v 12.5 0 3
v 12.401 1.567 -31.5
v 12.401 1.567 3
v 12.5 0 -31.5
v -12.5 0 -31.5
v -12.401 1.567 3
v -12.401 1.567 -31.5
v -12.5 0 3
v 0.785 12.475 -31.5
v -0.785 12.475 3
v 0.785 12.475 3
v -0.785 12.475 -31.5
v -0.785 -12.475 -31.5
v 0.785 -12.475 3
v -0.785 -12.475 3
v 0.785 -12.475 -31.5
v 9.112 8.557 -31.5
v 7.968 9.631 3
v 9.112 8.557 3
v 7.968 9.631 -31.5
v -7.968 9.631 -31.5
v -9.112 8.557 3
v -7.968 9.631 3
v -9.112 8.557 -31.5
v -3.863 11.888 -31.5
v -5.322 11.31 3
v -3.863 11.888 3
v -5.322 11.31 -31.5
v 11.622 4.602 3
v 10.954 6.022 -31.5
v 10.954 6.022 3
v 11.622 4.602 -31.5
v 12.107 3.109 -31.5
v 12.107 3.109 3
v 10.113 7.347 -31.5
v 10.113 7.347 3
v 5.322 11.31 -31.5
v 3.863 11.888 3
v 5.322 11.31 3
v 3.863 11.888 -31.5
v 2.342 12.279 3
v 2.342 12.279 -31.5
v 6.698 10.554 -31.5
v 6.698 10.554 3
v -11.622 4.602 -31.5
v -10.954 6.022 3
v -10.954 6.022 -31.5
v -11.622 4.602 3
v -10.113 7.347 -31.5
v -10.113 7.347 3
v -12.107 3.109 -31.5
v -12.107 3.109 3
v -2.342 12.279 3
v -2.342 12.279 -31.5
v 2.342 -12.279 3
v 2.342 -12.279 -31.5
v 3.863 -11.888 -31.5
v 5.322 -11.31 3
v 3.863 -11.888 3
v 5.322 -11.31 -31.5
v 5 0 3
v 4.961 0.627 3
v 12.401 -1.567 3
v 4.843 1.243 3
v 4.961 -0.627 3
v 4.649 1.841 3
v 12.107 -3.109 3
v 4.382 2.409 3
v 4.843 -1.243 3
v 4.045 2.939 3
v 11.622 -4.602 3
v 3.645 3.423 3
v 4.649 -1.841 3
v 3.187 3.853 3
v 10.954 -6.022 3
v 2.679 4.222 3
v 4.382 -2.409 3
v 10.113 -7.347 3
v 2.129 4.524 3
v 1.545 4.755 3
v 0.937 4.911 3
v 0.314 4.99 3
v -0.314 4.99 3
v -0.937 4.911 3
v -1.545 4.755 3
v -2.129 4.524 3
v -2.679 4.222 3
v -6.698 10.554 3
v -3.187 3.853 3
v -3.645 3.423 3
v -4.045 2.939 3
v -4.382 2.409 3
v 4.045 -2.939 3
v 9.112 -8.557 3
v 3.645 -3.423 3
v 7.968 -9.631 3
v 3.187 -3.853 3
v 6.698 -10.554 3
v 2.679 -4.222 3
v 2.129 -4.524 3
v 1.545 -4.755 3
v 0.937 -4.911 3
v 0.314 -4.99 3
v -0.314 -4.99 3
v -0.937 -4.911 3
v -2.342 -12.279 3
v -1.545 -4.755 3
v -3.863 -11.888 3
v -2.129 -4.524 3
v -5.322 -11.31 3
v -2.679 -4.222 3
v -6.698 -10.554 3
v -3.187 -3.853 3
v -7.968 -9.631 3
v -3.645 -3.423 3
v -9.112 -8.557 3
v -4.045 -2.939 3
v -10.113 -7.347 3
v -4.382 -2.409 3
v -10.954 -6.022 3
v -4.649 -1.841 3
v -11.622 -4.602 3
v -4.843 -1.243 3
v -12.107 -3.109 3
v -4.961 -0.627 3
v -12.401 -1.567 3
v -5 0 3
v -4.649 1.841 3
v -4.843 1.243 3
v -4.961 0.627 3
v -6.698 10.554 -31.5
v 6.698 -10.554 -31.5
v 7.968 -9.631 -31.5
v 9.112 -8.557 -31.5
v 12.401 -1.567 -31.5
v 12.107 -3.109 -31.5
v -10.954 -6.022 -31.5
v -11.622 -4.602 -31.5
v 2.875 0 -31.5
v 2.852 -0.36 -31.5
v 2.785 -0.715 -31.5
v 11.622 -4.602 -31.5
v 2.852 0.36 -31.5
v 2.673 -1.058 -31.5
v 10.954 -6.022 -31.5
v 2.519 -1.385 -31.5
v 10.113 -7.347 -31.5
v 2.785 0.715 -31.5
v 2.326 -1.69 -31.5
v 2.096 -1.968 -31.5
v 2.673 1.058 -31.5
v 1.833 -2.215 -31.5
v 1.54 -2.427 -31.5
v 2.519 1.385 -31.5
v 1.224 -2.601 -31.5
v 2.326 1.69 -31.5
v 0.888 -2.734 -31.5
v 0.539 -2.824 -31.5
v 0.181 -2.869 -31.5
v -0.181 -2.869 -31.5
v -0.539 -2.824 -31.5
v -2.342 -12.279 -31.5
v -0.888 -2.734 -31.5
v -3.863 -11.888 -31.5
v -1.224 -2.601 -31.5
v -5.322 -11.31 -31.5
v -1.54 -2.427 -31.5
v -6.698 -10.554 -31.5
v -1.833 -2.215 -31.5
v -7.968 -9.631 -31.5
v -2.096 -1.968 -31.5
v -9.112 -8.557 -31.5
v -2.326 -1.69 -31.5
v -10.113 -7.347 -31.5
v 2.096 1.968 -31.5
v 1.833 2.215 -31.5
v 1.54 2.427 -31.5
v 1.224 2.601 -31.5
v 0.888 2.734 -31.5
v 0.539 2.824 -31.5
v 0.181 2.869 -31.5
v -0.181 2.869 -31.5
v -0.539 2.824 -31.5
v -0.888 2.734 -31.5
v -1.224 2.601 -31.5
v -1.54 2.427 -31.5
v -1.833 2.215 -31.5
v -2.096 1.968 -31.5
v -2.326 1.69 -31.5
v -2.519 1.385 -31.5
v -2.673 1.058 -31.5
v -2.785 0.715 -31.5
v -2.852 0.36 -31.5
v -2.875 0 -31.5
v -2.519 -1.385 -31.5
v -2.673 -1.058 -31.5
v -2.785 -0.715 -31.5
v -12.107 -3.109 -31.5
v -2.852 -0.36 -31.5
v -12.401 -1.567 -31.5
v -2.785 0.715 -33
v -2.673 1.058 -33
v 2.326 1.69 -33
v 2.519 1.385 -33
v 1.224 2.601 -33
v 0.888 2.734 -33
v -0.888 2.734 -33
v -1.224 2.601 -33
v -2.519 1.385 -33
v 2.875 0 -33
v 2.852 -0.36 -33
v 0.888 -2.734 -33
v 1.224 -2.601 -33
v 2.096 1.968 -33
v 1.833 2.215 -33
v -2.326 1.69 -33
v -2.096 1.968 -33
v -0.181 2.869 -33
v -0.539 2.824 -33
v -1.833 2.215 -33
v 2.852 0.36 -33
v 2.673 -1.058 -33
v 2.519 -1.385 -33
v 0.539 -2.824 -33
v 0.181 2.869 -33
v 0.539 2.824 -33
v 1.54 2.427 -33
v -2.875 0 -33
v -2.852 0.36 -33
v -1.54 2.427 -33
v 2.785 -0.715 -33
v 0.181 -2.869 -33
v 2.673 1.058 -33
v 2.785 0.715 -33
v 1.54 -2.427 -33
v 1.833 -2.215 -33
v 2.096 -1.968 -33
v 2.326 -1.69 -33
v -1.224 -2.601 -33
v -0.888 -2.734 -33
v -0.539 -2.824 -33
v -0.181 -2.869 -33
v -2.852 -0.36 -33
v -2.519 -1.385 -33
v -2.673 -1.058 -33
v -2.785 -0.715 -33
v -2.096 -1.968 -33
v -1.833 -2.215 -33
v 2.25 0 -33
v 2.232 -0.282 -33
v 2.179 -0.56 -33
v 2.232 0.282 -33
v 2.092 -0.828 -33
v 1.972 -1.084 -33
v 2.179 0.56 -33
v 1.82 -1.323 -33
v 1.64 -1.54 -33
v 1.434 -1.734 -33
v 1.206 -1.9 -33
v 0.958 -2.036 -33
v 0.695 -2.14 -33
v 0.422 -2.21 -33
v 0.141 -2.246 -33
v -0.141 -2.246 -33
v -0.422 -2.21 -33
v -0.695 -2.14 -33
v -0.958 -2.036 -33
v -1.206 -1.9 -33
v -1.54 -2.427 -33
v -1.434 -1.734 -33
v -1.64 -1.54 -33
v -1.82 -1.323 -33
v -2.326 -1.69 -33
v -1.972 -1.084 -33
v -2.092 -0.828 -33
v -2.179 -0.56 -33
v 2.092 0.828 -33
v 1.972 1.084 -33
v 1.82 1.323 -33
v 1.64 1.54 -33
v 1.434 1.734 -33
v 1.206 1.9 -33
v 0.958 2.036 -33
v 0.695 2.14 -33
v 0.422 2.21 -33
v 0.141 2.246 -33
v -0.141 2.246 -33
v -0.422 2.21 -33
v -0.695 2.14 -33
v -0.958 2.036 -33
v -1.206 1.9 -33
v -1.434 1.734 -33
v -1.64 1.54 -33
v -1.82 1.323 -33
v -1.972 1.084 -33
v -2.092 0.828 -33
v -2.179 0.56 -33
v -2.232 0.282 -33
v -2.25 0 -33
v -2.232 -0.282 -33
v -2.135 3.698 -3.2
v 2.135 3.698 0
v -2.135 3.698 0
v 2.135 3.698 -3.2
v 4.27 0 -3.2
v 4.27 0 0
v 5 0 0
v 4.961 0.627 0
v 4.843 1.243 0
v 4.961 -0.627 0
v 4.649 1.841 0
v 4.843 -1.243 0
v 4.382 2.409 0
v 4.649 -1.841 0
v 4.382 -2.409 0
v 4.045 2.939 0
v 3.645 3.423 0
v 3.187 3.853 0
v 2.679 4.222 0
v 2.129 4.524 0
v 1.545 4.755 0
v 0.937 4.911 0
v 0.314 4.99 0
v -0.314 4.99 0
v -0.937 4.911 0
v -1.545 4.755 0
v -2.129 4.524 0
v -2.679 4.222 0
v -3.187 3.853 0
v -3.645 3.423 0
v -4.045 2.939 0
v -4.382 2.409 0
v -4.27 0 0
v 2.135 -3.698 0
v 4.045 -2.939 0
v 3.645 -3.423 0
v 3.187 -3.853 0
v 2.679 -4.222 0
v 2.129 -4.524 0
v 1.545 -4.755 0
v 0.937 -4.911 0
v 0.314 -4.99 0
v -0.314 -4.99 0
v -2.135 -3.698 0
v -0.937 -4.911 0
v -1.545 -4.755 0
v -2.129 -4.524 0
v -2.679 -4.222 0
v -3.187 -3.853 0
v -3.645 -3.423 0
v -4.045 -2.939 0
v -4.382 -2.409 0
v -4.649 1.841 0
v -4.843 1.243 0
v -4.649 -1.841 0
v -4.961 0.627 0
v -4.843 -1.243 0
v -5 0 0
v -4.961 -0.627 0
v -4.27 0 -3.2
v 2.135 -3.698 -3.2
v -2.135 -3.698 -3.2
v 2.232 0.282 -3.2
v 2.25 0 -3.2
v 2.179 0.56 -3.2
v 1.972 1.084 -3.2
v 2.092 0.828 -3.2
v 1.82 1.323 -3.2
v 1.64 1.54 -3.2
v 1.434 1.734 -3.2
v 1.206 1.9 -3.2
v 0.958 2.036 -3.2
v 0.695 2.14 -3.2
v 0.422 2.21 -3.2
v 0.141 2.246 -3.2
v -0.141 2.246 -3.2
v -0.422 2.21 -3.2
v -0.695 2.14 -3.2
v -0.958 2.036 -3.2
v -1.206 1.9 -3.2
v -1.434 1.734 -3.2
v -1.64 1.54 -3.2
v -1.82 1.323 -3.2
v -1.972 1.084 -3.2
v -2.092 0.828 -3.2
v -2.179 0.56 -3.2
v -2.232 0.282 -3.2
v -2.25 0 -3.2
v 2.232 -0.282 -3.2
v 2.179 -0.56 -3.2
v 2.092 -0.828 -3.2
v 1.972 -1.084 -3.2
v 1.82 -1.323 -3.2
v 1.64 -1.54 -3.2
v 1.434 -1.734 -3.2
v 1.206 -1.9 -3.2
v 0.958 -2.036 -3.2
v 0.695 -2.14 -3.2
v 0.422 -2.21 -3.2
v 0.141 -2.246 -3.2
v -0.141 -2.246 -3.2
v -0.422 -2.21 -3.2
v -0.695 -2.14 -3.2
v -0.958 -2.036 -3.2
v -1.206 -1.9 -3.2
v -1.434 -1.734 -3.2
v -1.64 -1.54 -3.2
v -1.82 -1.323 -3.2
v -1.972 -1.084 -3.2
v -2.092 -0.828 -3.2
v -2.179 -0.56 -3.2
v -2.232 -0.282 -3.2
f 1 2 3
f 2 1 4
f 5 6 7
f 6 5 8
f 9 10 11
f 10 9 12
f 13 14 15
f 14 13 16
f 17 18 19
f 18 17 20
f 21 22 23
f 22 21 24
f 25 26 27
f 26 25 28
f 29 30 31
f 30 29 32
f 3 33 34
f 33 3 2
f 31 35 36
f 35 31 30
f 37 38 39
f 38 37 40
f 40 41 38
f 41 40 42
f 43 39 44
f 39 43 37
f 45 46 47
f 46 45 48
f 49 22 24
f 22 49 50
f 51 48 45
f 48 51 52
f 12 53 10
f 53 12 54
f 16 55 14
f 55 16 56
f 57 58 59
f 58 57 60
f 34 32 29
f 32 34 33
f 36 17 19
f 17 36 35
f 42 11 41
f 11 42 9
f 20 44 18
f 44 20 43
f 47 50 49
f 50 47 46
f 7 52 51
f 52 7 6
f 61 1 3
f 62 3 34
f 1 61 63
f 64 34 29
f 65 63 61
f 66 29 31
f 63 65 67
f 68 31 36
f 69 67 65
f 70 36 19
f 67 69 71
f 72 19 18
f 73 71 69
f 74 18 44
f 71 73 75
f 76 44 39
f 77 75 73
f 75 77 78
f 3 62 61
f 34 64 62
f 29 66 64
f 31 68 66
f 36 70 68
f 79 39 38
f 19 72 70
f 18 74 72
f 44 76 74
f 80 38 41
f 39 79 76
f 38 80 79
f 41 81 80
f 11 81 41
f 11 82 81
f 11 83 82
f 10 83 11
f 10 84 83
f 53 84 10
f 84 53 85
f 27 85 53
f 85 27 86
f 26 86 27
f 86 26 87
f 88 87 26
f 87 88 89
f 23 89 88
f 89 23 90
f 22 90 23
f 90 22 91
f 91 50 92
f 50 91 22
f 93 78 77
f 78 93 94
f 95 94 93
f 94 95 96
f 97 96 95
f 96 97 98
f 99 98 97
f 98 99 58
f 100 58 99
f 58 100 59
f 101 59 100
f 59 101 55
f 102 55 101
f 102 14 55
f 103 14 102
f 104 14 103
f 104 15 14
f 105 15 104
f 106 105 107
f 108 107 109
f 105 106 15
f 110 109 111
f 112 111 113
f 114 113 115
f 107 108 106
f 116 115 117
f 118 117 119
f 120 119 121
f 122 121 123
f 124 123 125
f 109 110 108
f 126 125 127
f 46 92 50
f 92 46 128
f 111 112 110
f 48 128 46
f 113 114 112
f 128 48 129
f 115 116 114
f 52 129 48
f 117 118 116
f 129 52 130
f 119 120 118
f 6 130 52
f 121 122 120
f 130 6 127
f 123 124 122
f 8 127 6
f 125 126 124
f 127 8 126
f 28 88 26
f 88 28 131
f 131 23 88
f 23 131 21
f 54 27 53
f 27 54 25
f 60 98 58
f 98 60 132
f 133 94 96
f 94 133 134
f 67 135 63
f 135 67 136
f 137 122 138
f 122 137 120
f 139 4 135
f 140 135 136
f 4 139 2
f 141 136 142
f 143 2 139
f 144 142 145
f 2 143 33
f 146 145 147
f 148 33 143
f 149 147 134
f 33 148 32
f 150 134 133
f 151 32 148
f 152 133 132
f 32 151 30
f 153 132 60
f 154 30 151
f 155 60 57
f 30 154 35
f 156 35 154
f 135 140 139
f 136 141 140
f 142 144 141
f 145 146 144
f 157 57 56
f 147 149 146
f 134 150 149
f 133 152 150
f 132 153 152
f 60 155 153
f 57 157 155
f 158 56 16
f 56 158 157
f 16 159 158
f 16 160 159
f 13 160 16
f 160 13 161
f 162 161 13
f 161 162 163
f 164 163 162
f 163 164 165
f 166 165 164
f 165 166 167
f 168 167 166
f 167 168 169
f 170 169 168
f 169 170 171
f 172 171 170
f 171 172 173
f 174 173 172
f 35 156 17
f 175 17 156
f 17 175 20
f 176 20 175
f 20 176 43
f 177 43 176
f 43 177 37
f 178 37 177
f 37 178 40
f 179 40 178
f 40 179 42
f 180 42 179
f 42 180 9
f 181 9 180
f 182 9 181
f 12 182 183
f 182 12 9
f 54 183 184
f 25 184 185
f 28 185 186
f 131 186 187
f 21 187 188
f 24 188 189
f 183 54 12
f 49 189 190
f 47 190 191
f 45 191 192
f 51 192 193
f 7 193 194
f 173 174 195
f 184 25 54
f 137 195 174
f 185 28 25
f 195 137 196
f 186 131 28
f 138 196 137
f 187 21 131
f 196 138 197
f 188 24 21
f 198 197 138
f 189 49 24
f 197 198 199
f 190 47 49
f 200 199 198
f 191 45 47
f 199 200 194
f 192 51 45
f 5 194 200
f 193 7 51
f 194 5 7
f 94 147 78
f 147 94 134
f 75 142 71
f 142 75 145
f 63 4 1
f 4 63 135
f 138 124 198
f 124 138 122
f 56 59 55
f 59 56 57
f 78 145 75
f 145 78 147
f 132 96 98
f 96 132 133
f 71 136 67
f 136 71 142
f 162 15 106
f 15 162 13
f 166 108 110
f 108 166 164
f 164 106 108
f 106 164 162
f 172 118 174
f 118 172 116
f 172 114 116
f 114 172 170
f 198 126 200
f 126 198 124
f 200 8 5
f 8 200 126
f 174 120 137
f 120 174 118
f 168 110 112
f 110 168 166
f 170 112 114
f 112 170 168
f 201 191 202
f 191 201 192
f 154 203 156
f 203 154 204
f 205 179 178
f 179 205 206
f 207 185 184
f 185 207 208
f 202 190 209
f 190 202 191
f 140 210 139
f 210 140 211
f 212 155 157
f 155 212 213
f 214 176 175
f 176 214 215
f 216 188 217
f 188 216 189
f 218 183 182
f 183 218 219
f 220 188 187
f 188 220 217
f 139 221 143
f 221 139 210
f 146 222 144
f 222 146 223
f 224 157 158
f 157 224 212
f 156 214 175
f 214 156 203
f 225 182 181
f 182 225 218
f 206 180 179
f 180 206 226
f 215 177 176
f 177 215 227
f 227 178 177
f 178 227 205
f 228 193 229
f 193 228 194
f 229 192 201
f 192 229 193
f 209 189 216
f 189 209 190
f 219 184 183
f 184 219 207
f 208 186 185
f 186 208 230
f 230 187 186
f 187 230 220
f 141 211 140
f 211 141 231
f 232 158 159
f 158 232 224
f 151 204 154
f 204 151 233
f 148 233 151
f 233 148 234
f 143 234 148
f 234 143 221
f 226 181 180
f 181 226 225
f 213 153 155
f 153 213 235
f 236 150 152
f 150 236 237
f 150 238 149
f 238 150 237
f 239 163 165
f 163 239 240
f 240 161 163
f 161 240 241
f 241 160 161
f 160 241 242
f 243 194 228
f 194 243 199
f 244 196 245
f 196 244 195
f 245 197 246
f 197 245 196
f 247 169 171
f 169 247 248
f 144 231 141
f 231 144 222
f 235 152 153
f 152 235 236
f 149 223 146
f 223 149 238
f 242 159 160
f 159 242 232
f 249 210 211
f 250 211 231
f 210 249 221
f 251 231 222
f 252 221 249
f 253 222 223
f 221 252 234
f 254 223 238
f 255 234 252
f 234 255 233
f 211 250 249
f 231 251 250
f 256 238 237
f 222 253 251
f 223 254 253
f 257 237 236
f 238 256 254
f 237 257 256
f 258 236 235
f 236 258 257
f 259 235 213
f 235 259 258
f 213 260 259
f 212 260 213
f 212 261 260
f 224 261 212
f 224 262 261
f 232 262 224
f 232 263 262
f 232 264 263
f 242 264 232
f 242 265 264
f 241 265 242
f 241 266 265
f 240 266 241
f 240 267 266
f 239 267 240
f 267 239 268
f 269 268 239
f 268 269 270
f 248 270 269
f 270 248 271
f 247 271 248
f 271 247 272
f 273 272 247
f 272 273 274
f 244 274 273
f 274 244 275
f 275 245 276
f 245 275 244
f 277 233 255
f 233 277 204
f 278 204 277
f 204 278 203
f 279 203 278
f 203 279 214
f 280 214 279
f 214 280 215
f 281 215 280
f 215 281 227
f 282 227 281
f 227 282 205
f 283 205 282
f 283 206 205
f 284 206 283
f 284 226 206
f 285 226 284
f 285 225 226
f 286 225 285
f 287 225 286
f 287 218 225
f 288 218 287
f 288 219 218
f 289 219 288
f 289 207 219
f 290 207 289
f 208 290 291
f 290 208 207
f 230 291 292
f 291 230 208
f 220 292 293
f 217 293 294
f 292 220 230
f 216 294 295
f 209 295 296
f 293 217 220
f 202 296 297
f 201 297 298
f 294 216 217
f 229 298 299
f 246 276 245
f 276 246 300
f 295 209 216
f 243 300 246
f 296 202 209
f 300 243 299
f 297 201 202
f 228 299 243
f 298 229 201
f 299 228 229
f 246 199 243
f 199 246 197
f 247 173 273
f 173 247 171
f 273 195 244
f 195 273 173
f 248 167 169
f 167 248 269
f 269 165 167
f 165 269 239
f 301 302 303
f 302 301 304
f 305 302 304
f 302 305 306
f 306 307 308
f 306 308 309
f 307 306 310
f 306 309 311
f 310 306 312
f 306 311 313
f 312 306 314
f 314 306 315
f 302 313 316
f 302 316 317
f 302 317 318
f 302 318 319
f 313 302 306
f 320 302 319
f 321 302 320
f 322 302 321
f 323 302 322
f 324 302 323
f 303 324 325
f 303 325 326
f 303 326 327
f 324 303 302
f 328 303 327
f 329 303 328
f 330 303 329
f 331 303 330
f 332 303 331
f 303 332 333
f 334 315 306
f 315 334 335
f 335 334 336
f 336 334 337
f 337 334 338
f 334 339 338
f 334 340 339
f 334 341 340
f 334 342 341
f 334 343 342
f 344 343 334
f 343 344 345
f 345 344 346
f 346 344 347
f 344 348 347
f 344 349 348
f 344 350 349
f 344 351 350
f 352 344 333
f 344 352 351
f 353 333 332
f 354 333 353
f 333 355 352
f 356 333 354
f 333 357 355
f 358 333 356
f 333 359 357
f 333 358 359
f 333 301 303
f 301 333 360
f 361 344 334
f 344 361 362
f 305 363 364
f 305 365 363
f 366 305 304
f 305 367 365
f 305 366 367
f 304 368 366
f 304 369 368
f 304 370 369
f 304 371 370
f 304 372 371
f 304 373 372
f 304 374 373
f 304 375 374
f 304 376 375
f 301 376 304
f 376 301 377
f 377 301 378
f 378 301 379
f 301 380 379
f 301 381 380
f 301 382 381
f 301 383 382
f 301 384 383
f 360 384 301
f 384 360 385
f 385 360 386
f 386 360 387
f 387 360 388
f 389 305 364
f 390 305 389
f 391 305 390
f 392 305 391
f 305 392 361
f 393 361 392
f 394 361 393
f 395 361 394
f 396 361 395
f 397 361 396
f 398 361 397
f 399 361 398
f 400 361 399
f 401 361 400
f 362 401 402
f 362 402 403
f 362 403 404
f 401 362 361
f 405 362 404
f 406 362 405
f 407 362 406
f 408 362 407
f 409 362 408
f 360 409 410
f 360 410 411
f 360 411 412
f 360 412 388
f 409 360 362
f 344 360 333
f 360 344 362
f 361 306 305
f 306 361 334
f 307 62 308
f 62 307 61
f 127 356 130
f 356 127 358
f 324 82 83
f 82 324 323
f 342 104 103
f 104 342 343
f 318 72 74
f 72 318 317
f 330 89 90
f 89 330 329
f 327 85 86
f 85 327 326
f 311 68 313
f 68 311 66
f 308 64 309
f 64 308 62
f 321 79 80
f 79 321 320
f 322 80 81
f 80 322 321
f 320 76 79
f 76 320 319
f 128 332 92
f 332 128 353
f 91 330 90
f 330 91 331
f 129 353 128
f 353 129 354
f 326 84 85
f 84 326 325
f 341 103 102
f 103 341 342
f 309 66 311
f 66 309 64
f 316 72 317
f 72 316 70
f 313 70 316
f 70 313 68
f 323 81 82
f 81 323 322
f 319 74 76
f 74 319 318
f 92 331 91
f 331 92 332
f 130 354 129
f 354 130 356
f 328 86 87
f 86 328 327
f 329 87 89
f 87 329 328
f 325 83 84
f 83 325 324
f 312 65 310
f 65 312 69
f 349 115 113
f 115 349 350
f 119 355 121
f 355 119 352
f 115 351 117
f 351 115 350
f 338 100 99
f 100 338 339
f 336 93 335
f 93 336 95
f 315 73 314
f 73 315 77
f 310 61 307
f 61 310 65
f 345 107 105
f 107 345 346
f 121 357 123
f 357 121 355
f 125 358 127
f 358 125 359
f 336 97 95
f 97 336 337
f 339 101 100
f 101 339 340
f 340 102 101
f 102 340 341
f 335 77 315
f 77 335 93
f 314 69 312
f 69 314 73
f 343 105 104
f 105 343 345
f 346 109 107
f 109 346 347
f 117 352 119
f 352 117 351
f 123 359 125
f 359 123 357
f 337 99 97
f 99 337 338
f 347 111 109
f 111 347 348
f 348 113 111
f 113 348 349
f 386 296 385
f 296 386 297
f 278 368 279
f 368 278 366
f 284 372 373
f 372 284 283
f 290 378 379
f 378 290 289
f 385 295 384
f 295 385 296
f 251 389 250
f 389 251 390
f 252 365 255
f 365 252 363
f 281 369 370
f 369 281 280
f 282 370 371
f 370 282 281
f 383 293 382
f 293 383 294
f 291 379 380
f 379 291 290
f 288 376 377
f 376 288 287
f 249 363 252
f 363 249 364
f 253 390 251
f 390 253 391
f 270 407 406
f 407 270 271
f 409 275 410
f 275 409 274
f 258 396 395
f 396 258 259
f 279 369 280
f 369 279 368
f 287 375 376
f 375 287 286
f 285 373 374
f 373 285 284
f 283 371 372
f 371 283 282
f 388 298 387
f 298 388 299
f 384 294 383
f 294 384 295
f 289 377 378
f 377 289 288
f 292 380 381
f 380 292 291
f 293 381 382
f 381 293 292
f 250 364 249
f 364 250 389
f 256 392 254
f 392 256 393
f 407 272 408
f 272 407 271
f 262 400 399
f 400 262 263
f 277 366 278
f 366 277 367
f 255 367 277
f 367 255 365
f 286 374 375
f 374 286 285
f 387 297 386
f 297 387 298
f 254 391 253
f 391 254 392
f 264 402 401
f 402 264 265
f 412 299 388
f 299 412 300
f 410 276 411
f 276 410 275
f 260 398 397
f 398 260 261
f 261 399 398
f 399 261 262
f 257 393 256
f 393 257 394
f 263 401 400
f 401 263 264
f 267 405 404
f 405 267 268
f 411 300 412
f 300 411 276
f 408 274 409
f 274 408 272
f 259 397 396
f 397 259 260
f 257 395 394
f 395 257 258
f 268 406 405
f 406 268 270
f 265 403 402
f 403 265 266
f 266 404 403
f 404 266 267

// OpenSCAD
$fn = 50;


difference() {
	union() {
		translate(v = [0, 0, -31.5000000000]) {
			cylinder(h = 34.5000000000, r = 12.5000000000);
		}
		#translate(v = [0, 0, -33.0000000000]) {
			cylinder(h = 33, r = 2.8750000000);
		}
	}
	union() {
		translate(v = [0, 0, 0]) {
			rotate(a = [0, 0, 0]) {
				difference() {
					union() {
						translate(v = [0, 0, -3.2000000000]) {
							linear_extrude(height = 3.2000000000) {
								polygon(points = [[4.2698000000, 0.0000000000], [2.1349000000, 3.6977552691], [-2.1349000000, 3.6977552691], [-4.2698000000, 0.0000000000], [-2.1349000000, -3.6977552691], [2.1349000000, -3.6977552691]]);
							}
						}
					}
					union();
				}
			}
		}
		#cylinder(h = 3, r = 5.0000000000);
		#translate(v = [0, 0, -100.0000000000]) {
			cylinder(h = 200, r = 2.2500000000);
		}
	}
}
